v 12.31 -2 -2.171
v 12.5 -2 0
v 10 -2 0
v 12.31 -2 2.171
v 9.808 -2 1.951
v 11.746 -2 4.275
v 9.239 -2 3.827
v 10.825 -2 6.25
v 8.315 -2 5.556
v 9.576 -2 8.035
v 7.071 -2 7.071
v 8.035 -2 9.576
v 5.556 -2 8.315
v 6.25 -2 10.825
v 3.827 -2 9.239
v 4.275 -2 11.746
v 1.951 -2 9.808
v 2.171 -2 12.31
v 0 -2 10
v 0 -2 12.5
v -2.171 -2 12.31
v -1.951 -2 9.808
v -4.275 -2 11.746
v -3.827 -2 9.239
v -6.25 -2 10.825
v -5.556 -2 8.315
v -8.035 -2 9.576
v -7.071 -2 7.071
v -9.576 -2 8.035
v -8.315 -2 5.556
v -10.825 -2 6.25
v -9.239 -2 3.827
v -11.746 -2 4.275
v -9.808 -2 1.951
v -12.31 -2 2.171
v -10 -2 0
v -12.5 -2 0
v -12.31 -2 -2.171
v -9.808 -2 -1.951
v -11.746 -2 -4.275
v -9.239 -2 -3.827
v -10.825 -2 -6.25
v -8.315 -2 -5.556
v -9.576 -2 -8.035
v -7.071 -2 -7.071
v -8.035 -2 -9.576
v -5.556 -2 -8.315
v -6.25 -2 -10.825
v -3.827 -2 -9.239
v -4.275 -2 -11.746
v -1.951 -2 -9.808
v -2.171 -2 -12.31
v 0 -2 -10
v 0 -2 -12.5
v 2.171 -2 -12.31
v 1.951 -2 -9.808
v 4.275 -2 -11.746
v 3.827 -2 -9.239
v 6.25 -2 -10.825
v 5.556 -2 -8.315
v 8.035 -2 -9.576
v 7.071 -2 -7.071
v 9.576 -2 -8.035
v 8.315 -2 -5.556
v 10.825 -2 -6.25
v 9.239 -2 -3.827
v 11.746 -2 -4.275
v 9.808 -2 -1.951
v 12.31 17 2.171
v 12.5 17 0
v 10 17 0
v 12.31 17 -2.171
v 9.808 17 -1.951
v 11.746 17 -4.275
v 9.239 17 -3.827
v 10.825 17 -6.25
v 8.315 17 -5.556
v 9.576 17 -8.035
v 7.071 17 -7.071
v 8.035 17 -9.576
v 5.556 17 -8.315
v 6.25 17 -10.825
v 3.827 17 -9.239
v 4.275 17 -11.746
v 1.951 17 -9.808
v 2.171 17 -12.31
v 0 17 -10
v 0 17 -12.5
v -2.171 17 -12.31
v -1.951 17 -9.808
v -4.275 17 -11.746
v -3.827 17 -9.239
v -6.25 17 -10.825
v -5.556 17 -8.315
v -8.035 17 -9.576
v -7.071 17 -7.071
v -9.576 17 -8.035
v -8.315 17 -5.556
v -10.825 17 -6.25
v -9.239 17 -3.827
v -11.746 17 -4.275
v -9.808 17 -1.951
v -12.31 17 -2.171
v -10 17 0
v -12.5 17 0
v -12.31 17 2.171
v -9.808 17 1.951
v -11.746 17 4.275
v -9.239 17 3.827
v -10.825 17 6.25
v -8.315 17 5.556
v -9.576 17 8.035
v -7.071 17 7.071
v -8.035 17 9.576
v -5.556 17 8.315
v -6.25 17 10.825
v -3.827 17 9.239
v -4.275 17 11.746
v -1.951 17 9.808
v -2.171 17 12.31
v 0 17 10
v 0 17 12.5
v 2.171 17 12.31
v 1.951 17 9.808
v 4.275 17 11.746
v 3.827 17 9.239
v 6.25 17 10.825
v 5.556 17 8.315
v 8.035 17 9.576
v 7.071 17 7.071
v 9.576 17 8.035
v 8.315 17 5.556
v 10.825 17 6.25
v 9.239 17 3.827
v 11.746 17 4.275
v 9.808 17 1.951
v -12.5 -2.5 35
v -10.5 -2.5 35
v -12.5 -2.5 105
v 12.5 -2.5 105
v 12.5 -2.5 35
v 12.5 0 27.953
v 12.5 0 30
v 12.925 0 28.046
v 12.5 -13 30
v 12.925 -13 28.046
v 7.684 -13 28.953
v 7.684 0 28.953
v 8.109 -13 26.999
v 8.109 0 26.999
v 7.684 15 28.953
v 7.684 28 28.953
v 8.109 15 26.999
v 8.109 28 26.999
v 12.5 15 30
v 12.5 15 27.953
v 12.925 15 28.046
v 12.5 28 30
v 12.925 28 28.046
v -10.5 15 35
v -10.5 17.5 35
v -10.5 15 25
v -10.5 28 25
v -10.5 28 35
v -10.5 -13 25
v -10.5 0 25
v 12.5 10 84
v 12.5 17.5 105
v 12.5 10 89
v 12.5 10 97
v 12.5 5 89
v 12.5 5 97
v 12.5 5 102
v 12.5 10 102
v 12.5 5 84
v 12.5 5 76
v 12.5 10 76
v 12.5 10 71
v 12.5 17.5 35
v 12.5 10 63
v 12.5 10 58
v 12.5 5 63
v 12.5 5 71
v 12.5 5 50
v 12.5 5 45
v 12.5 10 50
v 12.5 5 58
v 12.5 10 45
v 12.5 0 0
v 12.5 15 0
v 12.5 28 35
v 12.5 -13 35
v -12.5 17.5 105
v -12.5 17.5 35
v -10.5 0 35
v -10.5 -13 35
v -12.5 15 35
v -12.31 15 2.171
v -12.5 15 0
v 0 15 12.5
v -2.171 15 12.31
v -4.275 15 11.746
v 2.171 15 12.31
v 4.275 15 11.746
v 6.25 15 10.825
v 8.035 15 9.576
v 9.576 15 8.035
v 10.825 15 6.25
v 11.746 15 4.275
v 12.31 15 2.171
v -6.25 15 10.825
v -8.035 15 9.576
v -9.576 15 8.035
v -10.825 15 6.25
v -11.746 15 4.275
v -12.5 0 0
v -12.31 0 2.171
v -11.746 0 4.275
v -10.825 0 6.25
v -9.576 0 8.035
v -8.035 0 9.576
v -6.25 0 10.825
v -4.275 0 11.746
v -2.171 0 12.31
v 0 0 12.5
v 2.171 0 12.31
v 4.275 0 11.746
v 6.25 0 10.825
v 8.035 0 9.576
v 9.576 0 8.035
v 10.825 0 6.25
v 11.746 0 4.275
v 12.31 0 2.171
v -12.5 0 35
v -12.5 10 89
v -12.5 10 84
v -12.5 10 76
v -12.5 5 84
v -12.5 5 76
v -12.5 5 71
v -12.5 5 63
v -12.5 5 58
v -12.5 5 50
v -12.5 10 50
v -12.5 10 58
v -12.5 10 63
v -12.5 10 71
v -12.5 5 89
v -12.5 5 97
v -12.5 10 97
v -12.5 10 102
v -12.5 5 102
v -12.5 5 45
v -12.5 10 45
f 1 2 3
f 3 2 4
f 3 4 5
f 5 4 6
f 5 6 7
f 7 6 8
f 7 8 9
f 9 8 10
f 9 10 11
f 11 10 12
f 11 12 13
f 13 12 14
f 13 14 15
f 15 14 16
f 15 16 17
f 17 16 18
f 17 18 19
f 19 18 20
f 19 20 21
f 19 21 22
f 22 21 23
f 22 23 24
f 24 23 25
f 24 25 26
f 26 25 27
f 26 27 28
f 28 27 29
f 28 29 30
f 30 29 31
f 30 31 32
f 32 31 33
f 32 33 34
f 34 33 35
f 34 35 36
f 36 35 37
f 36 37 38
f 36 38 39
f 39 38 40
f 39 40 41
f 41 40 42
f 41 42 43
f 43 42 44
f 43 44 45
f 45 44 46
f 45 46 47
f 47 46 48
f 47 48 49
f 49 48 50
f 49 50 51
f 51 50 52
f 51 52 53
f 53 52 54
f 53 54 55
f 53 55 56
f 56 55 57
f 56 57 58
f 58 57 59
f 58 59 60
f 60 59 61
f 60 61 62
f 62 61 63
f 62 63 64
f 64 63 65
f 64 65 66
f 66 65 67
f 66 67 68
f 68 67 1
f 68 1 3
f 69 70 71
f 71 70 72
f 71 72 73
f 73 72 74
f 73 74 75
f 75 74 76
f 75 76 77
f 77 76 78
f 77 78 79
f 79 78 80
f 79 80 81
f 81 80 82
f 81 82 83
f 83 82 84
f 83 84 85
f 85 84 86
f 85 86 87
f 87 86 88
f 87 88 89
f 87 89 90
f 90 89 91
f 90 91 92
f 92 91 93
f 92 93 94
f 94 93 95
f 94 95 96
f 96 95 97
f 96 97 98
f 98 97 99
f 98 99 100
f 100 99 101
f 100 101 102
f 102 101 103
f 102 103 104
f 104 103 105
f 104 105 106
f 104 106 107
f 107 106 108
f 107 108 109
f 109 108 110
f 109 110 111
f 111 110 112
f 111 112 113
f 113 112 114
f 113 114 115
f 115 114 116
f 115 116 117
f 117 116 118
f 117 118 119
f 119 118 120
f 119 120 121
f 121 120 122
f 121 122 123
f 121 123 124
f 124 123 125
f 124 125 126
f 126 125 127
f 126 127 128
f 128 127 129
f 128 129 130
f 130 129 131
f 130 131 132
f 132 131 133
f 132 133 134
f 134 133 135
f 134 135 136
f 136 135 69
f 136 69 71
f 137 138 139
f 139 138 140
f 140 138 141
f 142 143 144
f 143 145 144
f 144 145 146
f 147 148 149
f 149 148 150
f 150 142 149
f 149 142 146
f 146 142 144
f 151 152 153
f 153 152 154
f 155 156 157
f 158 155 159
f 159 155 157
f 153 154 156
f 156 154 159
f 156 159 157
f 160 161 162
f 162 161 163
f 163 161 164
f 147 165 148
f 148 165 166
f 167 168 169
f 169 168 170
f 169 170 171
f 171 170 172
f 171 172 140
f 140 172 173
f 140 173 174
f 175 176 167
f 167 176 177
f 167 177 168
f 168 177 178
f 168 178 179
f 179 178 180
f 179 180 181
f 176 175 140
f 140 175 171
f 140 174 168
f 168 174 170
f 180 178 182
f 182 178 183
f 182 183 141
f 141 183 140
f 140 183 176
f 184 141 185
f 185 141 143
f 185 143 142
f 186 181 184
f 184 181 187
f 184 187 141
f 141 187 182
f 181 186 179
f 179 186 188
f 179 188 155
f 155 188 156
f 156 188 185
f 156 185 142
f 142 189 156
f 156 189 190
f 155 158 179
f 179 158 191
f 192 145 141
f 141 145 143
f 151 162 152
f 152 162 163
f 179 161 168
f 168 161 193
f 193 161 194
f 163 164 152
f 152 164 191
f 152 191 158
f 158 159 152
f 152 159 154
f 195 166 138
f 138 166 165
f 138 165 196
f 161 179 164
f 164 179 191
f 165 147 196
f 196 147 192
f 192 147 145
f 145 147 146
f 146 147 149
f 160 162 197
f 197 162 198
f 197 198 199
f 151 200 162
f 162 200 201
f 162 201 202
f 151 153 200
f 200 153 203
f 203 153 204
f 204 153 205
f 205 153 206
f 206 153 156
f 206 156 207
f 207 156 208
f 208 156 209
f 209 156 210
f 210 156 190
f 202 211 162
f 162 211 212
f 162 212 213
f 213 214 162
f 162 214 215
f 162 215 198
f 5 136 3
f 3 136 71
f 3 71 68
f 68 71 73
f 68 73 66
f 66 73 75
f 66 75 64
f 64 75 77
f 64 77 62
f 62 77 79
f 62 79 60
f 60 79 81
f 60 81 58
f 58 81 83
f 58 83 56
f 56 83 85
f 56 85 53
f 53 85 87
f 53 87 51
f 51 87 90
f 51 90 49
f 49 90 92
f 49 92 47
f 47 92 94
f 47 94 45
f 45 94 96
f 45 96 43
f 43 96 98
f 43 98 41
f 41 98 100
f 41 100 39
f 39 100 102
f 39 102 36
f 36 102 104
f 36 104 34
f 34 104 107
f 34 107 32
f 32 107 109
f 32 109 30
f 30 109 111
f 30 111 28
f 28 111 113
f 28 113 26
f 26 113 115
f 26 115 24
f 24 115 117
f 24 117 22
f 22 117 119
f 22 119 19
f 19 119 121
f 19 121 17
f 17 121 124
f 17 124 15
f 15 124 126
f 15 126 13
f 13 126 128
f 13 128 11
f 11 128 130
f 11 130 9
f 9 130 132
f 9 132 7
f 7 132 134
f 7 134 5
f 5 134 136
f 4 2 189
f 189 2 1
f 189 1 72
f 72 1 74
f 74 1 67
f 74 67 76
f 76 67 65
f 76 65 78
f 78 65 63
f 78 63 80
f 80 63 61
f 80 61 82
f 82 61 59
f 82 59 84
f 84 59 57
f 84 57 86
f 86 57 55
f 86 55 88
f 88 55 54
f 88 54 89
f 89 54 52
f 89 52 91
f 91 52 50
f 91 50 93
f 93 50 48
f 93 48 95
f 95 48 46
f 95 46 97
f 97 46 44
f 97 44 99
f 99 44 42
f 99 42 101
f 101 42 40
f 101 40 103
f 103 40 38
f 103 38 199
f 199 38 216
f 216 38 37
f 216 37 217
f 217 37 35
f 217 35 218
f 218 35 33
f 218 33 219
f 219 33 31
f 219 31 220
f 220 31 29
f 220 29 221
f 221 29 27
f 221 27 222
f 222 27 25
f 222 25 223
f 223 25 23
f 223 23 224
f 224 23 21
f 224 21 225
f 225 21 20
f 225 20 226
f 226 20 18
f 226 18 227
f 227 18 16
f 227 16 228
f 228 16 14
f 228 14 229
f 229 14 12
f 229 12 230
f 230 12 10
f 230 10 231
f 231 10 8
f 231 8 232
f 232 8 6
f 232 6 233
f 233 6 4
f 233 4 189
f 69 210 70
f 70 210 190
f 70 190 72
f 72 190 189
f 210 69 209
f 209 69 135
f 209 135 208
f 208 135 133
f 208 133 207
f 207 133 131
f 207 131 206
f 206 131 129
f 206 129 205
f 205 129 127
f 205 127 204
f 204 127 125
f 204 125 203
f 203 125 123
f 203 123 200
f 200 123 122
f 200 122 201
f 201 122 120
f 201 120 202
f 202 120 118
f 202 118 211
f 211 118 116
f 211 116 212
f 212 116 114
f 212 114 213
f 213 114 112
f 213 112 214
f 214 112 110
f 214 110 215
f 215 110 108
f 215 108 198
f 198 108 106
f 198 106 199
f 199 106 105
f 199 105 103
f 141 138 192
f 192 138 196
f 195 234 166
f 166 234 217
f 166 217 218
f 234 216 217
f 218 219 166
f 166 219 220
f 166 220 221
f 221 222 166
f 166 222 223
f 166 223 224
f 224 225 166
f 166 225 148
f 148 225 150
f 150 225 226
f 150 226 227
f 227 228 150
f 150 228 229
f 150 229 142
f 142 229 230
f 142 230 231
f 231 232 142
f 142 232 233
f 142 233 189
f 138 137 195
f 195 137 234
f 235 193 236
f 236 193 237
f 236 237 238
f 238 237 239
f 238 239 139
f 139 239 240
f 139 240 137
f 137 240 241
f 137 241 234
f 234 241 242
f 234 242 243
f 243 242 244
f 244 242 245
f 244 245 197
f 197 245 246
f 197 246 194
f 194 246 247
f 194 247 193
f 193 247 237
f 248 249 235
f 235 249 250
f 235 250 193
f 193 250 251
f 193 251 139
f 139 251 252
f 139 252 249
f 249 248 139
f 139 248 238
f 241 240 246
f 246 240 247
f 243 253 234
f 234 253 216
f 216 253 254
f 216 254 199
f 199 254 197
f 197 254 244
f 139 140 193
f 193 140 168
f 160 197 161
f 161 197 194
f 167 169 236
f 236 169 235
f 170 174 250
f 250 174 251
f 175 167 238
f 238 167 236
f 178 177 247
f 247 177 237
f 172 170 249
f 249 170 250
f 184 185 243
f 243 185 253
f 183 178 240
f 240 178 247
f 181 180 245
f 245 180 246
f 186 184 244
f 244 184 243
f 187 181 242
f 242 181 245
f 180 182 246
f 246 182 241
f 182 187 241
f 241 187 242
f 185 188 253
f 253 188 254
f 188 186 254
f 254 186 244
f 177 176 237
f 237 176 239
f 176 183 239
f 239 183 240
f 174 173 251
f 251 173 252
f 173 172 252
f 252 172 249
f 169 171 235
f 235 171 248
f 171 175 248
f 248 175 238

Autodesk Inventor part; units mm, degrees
ref_plane "YZ Plane" through (0, 0, 0) normal (1, 0, 0) x (0, 1, 0)
ref_plane "XY Plane" through (0, 0, 0) normal (0, 0, 1) x (1, 0, 0)
sketch "Sketch1" plane through (0, 0, 0) normal (0, 1, 0) x (-1, 0, 0)
  circle A0 centre (0, 0) radius 10
  circle A1 centre (0, 0) radius 12.5
  line L0 (12.5, 0) -> (12.5, 50)
  line L1 (-12.5, 0) -> (-12.5, 50)
  line L2 (-12.5, 50) -> (12.5, 50)
  dimension "d0" = 20
  dimension "d1" = 25
  dimension "d2" = 50
extrude "Extrusion1" add sketch "Sketch1" along normal blind 15
sketch "Sketch3" plane through (-12.5, 0, 50) normal (0, 0, 1) x (1, 0, 0)
  point P0 (12.5, 0)
sketch "Sketch4" plane through (-12.5, 0, 50) normal (0, 0, 1) x (1, 0, 0)
  line L0 (25, 0) -> (25, 15) projected
  line L1 (25, 0) -> (25, 15)
  line L2 (0, 15) -> (25, 15) projected
  line L3 (25, 15) -> (0, 15)
  line L4 (0, 0) -> (0, 15) projected
  line L5 (0, 15) -> (0, 0)
  line L6 (0, 0) -> (25, 0) projected
  line L7 (0, 0) -> (25, 0)
  point P0 (12.5, 0)
extrude "Extrusion3" add sketch "Sketch4" along normal blind 25
sketch "Sketch9" plane through (0, 0, 0) normal (0, -1, 0) x (1, 0, 0)
  line L0 (-12.5, 25) -> (-22.5, 25) projected
  line L1 (-12.5, 25) -> (12.5, 25)
  line L2 (12.5, 0) -> (12.5, 75) projected
  line L3 (-12.5, 25) -> (-12.5, 75) projected
  line L4 (-12.5, 25) -> (-12.5, 75)
  line L5 (-12.5, 75) -> (12.5, 75) projected
  line L6 (-12.5, 75) -> (12.5, 75)
  line L7 (12.5, 75) -> (12.5, 25)
  line L8 (12.5, 0) -> (12.5, 30)
  line L9 (-12.5, 25) -> (-10.5, 25)
  line L10 (-10.5, 25) -> (-10.5, 75)
  line L11 (-12.5, 75) -> (-12.5, 25)
  line L12 (-10.5, 25) -> (12.5, 30)
  line L13 (-10.5, 25) -> (-10.5, 35)
  line L14 (-10.5, 35) -> (12.5, 35)
  point P0 (0, 0)
  point P1 (12.5, 35)
  dimension "d50" = 30
  dimension "d51" = 2
  dimension "d74" = 10
extrude "Extrusion7" add sketch "Sketch9" along normal blind 13 contours L10 L14 L2 L12
sketch "Sketch10" plane through (0, -13, 0) normal (0, -1, 0) x (1, 0, 0)
  point P0 (0, 0)
ref_plane "Work Plane1" through (0, 7.5, 0) normal (0, 1, 0) x (-1, 0, 0)
mirror "Mirror1" about plane through (0, 7.5, 0) normal (0, 1, 0) of "Extrusion7"
sketch "Sketch15" plane through (-10.5, 15, 25) normal (0.2124296, 0, -0.9771764) x (-0.9771764, 0, -0.2124296)
  line L0 (-23.5372, 0) -> (-23.5372, 13) projected
  line L1 (-14.7001, 13) -> (-18.6088, 13) projected
  line L2 (-23.5372, 0) -> (-18.5372, 0)
  line L3 (-18.5372, 0) -> (-18.5372, 13)
  line L4 (-18.5372, 13) -> (-23.5372, 13)
  line L5 (-23.5372, 13) -> (-23.5372, 0)
  line L6 (-23.5372, -28) -> (-24.5994, -28) projected
  line L7 (-18.6088, -28) -> (-18.6088, 13) projected
  line L8 (-23.5372, -28) -> (-18.6088, -28)
  line L9 (-18.6088, -28) -> (-18.6088, -15)
  line L10 (-18.6088, -15) -> (-23.5372, -15)
  line L11 (-23.5372, -15) -> (-23.5372, -28)
  point P0 (-4.9496, -15)
  point P1 (-33.0965, -28)
  point P2 (-18.6088, 0)
  point P3 (-23.5372, 13)
  dimension "d66" = 5
extrude "Extrusion9" add sketch "Sketch15" along normal blind 2 contours L0 L4 L7 L2 | L8 L11 L10 L7
sketch "Sketch16" plane through (0, 15, 0) normal (0, 1, 0) x (1, 0, 0)
  circle A0 centre (0, 0) radius 10
  circle A1 centre (0, 0) radius 12.5
  dimension "d69" = 25
extrude "Extrusion10" add sketch "Sketch16" along normal blind 2
sketch "Sketch17" plane through (0, 0, 0) normal (0, -1, 0) x (1, 0, 0)
  circle A0 centre (0, 0) radius 10
  circle A1 centre (0, 0) radius 10 projected
  circle A2 centre (0, 0) radius 12.5
extrude "Extrusion11" add sketch "Sketch17" along normal blind 2
sketch "Sketch18" plane through (-12.5, 0, 0) normal (-1, 0, 0) x (0, 0, 1)
  point P0 (0, 0)
sketch "Sketch19" plane through (0, 0, 0) normal (0, -1, 0) x (1, 0, 0)
  line L0 (-12.5, 75) -> (12.5, 75) projected
  line L1 (12.5, 35) -> (-10.5, 35) projected
  line L2 (-12.5, 75) -> (12.5, 75)
  line L3 (12.5, 75) -> (12.5, 35)
  line L4 (12.5, 35) -> (-12.5, 35)
  line L5 (-12.5, 35) -> (-12.5, 75)
  point P0 (0, 0)
extrude "Extrusion12" add sketch "Sketch19" along normal blind 2.5
sketch "Sketch20" plane through (0, 15, 0) normal (0, 1, 0) x (1, 0, 0)
  line L0 (12.5, -75) -> (-12.5, -75) projected
  line L1 (12.5, -35) -> (12.5, -75) projected
  line L2 (-12.5, -75) -> (12.5, -75)
  line L3 (12.5, -75) -> (12.5, -35)
  line L4 (12.5, -35) -> (-12.5, -35)
  line L5 (-12.5, -35) -> (-12.5, -75)
  point P0 (0, 0)
extrude "Extrusion13" add sketch "Sketch20" along normal blind 2.5
sketch "Sketch21" plane through (-12.5, 0, 75) normal (0, 0, 1) x (1, 0, 0)
  line L0 (25, -2.5) -> (0, -2.5) projected
  line L1 (0, -2.5) -> (25, -2.5)
  line L2 (25, -2.5) -> (25, 17.5)
  line L3 (25, 17.5) -> (0, 17.5)
  line L4 (0, 17.5) -> (0, -2.5)
  point P0 (12.5, 0)
extrude "Extrusion14" add sketch "Sketch21" along normal blind 30
sketch "Sketch22" plane through (-12.5, 0, 0) normal (-1, 0, 0) x (0, 0, 1)
  line L0 (35, 15) -> (35, 17.5) projected
  line L1 (35, -2.5) -> (105, -2.5) projected
  line L2 (35, 17.5) -> (45, 17.5)
  line L3 (45, 17.5) -> (45, -2.5)
  line L4 (45, -2.5) -> (35, -2.5)
  line L5 (35, -2.5) -> (35, 17.5)
  line L6 (45, 7.5) -> (50, 7.5)
  line L7 (45, 5) -> (50, 5)
  line L8 (50, 5) -> (50, 10)
  line L9 (50, 10) -> (45, 10)
  line L10 (45, 10) -> (45, 5)
  line L11 (45, 5) -> (50, 10) construction
  line L12 (50, 5) -> (45, 10) construction
  line L13 (50, 7.5) -> (58, 7.5)
  line L14 (63, 5) -> (58, 5)
  line L15 (58, 5) -> (58, 10)
  line L16 (58, 10) -> (63, 10)
  line L17 (63, 10) -> (63, 5)
  line L18 (63, 5) -> (58, 10) construction
  line L19 (58, 5) -> (63, 10) construction
  line L20 (63, 7.5) -> (71, 7.5)
  line L21 (76, 5) -> (71, 5)
  line L22 (71, 5) -> (71, 10)
  line L23 (71, 10) -> (76, 10)
  line L24 (76, 10) -> (76, 5)
  line L25 (76, 5) -> (71, 10) construction
  line L26 (71, 5) -> (76, 10) construction
  line L27 (76, 7.5) -> (84, 7.5)
  line L28 (89, 5) -> (84, 5)
  line L29 (84, 5) -> (84, 10)
  line L30 (84, 10) -> (89, 10)
  line L31 (89, 10) -> (89, 5)
  line L32 (89, 5) -> (84, 10) construction
  line L33 (84, 5) -> (89, 10) construction
  line L34 (89, 7.5) -> (97, 7.5)
  line L35 (102, 5) -> (97, 5)
  line L36 (97, 5) -> (97, 10)
  line L37 (97, 10) -> (102, 10)
  line L38 (102, 10) -> (102, 5)
  line L39 (102, 5) -> (97, 10) construction
  line L40 (97, 5) -> (102, 10) construction
  point P0 (0, 0)
  point P1 (47.5, 7.5)
  point P2 (60.5, 7.5)
  point P3 (73.5, 7.5)
  point P4 (86.5, 7.5)
  point P5 (99.5, 7.5)
  dimension "d81" = 10
  dimension "d82" = 5
  dimension "d83" = 5
  dimension "d84" = 8
  dimension "d85" = 5
  dimension "d86" = 8
  dimension "d87" = 8
  dimension "d88" = 8
extrude "Extrusion15" cut sketch "Sketch22" against normal blind 30 contours L9 L8 L6 L3 | L3 L6 L8 L7 | L14 L15 L16 L17 | L21 L22 L23 L24 | L28 L29 L30 L31 | L35 L36 L37 L38
properties part number "Part10copycopy"
